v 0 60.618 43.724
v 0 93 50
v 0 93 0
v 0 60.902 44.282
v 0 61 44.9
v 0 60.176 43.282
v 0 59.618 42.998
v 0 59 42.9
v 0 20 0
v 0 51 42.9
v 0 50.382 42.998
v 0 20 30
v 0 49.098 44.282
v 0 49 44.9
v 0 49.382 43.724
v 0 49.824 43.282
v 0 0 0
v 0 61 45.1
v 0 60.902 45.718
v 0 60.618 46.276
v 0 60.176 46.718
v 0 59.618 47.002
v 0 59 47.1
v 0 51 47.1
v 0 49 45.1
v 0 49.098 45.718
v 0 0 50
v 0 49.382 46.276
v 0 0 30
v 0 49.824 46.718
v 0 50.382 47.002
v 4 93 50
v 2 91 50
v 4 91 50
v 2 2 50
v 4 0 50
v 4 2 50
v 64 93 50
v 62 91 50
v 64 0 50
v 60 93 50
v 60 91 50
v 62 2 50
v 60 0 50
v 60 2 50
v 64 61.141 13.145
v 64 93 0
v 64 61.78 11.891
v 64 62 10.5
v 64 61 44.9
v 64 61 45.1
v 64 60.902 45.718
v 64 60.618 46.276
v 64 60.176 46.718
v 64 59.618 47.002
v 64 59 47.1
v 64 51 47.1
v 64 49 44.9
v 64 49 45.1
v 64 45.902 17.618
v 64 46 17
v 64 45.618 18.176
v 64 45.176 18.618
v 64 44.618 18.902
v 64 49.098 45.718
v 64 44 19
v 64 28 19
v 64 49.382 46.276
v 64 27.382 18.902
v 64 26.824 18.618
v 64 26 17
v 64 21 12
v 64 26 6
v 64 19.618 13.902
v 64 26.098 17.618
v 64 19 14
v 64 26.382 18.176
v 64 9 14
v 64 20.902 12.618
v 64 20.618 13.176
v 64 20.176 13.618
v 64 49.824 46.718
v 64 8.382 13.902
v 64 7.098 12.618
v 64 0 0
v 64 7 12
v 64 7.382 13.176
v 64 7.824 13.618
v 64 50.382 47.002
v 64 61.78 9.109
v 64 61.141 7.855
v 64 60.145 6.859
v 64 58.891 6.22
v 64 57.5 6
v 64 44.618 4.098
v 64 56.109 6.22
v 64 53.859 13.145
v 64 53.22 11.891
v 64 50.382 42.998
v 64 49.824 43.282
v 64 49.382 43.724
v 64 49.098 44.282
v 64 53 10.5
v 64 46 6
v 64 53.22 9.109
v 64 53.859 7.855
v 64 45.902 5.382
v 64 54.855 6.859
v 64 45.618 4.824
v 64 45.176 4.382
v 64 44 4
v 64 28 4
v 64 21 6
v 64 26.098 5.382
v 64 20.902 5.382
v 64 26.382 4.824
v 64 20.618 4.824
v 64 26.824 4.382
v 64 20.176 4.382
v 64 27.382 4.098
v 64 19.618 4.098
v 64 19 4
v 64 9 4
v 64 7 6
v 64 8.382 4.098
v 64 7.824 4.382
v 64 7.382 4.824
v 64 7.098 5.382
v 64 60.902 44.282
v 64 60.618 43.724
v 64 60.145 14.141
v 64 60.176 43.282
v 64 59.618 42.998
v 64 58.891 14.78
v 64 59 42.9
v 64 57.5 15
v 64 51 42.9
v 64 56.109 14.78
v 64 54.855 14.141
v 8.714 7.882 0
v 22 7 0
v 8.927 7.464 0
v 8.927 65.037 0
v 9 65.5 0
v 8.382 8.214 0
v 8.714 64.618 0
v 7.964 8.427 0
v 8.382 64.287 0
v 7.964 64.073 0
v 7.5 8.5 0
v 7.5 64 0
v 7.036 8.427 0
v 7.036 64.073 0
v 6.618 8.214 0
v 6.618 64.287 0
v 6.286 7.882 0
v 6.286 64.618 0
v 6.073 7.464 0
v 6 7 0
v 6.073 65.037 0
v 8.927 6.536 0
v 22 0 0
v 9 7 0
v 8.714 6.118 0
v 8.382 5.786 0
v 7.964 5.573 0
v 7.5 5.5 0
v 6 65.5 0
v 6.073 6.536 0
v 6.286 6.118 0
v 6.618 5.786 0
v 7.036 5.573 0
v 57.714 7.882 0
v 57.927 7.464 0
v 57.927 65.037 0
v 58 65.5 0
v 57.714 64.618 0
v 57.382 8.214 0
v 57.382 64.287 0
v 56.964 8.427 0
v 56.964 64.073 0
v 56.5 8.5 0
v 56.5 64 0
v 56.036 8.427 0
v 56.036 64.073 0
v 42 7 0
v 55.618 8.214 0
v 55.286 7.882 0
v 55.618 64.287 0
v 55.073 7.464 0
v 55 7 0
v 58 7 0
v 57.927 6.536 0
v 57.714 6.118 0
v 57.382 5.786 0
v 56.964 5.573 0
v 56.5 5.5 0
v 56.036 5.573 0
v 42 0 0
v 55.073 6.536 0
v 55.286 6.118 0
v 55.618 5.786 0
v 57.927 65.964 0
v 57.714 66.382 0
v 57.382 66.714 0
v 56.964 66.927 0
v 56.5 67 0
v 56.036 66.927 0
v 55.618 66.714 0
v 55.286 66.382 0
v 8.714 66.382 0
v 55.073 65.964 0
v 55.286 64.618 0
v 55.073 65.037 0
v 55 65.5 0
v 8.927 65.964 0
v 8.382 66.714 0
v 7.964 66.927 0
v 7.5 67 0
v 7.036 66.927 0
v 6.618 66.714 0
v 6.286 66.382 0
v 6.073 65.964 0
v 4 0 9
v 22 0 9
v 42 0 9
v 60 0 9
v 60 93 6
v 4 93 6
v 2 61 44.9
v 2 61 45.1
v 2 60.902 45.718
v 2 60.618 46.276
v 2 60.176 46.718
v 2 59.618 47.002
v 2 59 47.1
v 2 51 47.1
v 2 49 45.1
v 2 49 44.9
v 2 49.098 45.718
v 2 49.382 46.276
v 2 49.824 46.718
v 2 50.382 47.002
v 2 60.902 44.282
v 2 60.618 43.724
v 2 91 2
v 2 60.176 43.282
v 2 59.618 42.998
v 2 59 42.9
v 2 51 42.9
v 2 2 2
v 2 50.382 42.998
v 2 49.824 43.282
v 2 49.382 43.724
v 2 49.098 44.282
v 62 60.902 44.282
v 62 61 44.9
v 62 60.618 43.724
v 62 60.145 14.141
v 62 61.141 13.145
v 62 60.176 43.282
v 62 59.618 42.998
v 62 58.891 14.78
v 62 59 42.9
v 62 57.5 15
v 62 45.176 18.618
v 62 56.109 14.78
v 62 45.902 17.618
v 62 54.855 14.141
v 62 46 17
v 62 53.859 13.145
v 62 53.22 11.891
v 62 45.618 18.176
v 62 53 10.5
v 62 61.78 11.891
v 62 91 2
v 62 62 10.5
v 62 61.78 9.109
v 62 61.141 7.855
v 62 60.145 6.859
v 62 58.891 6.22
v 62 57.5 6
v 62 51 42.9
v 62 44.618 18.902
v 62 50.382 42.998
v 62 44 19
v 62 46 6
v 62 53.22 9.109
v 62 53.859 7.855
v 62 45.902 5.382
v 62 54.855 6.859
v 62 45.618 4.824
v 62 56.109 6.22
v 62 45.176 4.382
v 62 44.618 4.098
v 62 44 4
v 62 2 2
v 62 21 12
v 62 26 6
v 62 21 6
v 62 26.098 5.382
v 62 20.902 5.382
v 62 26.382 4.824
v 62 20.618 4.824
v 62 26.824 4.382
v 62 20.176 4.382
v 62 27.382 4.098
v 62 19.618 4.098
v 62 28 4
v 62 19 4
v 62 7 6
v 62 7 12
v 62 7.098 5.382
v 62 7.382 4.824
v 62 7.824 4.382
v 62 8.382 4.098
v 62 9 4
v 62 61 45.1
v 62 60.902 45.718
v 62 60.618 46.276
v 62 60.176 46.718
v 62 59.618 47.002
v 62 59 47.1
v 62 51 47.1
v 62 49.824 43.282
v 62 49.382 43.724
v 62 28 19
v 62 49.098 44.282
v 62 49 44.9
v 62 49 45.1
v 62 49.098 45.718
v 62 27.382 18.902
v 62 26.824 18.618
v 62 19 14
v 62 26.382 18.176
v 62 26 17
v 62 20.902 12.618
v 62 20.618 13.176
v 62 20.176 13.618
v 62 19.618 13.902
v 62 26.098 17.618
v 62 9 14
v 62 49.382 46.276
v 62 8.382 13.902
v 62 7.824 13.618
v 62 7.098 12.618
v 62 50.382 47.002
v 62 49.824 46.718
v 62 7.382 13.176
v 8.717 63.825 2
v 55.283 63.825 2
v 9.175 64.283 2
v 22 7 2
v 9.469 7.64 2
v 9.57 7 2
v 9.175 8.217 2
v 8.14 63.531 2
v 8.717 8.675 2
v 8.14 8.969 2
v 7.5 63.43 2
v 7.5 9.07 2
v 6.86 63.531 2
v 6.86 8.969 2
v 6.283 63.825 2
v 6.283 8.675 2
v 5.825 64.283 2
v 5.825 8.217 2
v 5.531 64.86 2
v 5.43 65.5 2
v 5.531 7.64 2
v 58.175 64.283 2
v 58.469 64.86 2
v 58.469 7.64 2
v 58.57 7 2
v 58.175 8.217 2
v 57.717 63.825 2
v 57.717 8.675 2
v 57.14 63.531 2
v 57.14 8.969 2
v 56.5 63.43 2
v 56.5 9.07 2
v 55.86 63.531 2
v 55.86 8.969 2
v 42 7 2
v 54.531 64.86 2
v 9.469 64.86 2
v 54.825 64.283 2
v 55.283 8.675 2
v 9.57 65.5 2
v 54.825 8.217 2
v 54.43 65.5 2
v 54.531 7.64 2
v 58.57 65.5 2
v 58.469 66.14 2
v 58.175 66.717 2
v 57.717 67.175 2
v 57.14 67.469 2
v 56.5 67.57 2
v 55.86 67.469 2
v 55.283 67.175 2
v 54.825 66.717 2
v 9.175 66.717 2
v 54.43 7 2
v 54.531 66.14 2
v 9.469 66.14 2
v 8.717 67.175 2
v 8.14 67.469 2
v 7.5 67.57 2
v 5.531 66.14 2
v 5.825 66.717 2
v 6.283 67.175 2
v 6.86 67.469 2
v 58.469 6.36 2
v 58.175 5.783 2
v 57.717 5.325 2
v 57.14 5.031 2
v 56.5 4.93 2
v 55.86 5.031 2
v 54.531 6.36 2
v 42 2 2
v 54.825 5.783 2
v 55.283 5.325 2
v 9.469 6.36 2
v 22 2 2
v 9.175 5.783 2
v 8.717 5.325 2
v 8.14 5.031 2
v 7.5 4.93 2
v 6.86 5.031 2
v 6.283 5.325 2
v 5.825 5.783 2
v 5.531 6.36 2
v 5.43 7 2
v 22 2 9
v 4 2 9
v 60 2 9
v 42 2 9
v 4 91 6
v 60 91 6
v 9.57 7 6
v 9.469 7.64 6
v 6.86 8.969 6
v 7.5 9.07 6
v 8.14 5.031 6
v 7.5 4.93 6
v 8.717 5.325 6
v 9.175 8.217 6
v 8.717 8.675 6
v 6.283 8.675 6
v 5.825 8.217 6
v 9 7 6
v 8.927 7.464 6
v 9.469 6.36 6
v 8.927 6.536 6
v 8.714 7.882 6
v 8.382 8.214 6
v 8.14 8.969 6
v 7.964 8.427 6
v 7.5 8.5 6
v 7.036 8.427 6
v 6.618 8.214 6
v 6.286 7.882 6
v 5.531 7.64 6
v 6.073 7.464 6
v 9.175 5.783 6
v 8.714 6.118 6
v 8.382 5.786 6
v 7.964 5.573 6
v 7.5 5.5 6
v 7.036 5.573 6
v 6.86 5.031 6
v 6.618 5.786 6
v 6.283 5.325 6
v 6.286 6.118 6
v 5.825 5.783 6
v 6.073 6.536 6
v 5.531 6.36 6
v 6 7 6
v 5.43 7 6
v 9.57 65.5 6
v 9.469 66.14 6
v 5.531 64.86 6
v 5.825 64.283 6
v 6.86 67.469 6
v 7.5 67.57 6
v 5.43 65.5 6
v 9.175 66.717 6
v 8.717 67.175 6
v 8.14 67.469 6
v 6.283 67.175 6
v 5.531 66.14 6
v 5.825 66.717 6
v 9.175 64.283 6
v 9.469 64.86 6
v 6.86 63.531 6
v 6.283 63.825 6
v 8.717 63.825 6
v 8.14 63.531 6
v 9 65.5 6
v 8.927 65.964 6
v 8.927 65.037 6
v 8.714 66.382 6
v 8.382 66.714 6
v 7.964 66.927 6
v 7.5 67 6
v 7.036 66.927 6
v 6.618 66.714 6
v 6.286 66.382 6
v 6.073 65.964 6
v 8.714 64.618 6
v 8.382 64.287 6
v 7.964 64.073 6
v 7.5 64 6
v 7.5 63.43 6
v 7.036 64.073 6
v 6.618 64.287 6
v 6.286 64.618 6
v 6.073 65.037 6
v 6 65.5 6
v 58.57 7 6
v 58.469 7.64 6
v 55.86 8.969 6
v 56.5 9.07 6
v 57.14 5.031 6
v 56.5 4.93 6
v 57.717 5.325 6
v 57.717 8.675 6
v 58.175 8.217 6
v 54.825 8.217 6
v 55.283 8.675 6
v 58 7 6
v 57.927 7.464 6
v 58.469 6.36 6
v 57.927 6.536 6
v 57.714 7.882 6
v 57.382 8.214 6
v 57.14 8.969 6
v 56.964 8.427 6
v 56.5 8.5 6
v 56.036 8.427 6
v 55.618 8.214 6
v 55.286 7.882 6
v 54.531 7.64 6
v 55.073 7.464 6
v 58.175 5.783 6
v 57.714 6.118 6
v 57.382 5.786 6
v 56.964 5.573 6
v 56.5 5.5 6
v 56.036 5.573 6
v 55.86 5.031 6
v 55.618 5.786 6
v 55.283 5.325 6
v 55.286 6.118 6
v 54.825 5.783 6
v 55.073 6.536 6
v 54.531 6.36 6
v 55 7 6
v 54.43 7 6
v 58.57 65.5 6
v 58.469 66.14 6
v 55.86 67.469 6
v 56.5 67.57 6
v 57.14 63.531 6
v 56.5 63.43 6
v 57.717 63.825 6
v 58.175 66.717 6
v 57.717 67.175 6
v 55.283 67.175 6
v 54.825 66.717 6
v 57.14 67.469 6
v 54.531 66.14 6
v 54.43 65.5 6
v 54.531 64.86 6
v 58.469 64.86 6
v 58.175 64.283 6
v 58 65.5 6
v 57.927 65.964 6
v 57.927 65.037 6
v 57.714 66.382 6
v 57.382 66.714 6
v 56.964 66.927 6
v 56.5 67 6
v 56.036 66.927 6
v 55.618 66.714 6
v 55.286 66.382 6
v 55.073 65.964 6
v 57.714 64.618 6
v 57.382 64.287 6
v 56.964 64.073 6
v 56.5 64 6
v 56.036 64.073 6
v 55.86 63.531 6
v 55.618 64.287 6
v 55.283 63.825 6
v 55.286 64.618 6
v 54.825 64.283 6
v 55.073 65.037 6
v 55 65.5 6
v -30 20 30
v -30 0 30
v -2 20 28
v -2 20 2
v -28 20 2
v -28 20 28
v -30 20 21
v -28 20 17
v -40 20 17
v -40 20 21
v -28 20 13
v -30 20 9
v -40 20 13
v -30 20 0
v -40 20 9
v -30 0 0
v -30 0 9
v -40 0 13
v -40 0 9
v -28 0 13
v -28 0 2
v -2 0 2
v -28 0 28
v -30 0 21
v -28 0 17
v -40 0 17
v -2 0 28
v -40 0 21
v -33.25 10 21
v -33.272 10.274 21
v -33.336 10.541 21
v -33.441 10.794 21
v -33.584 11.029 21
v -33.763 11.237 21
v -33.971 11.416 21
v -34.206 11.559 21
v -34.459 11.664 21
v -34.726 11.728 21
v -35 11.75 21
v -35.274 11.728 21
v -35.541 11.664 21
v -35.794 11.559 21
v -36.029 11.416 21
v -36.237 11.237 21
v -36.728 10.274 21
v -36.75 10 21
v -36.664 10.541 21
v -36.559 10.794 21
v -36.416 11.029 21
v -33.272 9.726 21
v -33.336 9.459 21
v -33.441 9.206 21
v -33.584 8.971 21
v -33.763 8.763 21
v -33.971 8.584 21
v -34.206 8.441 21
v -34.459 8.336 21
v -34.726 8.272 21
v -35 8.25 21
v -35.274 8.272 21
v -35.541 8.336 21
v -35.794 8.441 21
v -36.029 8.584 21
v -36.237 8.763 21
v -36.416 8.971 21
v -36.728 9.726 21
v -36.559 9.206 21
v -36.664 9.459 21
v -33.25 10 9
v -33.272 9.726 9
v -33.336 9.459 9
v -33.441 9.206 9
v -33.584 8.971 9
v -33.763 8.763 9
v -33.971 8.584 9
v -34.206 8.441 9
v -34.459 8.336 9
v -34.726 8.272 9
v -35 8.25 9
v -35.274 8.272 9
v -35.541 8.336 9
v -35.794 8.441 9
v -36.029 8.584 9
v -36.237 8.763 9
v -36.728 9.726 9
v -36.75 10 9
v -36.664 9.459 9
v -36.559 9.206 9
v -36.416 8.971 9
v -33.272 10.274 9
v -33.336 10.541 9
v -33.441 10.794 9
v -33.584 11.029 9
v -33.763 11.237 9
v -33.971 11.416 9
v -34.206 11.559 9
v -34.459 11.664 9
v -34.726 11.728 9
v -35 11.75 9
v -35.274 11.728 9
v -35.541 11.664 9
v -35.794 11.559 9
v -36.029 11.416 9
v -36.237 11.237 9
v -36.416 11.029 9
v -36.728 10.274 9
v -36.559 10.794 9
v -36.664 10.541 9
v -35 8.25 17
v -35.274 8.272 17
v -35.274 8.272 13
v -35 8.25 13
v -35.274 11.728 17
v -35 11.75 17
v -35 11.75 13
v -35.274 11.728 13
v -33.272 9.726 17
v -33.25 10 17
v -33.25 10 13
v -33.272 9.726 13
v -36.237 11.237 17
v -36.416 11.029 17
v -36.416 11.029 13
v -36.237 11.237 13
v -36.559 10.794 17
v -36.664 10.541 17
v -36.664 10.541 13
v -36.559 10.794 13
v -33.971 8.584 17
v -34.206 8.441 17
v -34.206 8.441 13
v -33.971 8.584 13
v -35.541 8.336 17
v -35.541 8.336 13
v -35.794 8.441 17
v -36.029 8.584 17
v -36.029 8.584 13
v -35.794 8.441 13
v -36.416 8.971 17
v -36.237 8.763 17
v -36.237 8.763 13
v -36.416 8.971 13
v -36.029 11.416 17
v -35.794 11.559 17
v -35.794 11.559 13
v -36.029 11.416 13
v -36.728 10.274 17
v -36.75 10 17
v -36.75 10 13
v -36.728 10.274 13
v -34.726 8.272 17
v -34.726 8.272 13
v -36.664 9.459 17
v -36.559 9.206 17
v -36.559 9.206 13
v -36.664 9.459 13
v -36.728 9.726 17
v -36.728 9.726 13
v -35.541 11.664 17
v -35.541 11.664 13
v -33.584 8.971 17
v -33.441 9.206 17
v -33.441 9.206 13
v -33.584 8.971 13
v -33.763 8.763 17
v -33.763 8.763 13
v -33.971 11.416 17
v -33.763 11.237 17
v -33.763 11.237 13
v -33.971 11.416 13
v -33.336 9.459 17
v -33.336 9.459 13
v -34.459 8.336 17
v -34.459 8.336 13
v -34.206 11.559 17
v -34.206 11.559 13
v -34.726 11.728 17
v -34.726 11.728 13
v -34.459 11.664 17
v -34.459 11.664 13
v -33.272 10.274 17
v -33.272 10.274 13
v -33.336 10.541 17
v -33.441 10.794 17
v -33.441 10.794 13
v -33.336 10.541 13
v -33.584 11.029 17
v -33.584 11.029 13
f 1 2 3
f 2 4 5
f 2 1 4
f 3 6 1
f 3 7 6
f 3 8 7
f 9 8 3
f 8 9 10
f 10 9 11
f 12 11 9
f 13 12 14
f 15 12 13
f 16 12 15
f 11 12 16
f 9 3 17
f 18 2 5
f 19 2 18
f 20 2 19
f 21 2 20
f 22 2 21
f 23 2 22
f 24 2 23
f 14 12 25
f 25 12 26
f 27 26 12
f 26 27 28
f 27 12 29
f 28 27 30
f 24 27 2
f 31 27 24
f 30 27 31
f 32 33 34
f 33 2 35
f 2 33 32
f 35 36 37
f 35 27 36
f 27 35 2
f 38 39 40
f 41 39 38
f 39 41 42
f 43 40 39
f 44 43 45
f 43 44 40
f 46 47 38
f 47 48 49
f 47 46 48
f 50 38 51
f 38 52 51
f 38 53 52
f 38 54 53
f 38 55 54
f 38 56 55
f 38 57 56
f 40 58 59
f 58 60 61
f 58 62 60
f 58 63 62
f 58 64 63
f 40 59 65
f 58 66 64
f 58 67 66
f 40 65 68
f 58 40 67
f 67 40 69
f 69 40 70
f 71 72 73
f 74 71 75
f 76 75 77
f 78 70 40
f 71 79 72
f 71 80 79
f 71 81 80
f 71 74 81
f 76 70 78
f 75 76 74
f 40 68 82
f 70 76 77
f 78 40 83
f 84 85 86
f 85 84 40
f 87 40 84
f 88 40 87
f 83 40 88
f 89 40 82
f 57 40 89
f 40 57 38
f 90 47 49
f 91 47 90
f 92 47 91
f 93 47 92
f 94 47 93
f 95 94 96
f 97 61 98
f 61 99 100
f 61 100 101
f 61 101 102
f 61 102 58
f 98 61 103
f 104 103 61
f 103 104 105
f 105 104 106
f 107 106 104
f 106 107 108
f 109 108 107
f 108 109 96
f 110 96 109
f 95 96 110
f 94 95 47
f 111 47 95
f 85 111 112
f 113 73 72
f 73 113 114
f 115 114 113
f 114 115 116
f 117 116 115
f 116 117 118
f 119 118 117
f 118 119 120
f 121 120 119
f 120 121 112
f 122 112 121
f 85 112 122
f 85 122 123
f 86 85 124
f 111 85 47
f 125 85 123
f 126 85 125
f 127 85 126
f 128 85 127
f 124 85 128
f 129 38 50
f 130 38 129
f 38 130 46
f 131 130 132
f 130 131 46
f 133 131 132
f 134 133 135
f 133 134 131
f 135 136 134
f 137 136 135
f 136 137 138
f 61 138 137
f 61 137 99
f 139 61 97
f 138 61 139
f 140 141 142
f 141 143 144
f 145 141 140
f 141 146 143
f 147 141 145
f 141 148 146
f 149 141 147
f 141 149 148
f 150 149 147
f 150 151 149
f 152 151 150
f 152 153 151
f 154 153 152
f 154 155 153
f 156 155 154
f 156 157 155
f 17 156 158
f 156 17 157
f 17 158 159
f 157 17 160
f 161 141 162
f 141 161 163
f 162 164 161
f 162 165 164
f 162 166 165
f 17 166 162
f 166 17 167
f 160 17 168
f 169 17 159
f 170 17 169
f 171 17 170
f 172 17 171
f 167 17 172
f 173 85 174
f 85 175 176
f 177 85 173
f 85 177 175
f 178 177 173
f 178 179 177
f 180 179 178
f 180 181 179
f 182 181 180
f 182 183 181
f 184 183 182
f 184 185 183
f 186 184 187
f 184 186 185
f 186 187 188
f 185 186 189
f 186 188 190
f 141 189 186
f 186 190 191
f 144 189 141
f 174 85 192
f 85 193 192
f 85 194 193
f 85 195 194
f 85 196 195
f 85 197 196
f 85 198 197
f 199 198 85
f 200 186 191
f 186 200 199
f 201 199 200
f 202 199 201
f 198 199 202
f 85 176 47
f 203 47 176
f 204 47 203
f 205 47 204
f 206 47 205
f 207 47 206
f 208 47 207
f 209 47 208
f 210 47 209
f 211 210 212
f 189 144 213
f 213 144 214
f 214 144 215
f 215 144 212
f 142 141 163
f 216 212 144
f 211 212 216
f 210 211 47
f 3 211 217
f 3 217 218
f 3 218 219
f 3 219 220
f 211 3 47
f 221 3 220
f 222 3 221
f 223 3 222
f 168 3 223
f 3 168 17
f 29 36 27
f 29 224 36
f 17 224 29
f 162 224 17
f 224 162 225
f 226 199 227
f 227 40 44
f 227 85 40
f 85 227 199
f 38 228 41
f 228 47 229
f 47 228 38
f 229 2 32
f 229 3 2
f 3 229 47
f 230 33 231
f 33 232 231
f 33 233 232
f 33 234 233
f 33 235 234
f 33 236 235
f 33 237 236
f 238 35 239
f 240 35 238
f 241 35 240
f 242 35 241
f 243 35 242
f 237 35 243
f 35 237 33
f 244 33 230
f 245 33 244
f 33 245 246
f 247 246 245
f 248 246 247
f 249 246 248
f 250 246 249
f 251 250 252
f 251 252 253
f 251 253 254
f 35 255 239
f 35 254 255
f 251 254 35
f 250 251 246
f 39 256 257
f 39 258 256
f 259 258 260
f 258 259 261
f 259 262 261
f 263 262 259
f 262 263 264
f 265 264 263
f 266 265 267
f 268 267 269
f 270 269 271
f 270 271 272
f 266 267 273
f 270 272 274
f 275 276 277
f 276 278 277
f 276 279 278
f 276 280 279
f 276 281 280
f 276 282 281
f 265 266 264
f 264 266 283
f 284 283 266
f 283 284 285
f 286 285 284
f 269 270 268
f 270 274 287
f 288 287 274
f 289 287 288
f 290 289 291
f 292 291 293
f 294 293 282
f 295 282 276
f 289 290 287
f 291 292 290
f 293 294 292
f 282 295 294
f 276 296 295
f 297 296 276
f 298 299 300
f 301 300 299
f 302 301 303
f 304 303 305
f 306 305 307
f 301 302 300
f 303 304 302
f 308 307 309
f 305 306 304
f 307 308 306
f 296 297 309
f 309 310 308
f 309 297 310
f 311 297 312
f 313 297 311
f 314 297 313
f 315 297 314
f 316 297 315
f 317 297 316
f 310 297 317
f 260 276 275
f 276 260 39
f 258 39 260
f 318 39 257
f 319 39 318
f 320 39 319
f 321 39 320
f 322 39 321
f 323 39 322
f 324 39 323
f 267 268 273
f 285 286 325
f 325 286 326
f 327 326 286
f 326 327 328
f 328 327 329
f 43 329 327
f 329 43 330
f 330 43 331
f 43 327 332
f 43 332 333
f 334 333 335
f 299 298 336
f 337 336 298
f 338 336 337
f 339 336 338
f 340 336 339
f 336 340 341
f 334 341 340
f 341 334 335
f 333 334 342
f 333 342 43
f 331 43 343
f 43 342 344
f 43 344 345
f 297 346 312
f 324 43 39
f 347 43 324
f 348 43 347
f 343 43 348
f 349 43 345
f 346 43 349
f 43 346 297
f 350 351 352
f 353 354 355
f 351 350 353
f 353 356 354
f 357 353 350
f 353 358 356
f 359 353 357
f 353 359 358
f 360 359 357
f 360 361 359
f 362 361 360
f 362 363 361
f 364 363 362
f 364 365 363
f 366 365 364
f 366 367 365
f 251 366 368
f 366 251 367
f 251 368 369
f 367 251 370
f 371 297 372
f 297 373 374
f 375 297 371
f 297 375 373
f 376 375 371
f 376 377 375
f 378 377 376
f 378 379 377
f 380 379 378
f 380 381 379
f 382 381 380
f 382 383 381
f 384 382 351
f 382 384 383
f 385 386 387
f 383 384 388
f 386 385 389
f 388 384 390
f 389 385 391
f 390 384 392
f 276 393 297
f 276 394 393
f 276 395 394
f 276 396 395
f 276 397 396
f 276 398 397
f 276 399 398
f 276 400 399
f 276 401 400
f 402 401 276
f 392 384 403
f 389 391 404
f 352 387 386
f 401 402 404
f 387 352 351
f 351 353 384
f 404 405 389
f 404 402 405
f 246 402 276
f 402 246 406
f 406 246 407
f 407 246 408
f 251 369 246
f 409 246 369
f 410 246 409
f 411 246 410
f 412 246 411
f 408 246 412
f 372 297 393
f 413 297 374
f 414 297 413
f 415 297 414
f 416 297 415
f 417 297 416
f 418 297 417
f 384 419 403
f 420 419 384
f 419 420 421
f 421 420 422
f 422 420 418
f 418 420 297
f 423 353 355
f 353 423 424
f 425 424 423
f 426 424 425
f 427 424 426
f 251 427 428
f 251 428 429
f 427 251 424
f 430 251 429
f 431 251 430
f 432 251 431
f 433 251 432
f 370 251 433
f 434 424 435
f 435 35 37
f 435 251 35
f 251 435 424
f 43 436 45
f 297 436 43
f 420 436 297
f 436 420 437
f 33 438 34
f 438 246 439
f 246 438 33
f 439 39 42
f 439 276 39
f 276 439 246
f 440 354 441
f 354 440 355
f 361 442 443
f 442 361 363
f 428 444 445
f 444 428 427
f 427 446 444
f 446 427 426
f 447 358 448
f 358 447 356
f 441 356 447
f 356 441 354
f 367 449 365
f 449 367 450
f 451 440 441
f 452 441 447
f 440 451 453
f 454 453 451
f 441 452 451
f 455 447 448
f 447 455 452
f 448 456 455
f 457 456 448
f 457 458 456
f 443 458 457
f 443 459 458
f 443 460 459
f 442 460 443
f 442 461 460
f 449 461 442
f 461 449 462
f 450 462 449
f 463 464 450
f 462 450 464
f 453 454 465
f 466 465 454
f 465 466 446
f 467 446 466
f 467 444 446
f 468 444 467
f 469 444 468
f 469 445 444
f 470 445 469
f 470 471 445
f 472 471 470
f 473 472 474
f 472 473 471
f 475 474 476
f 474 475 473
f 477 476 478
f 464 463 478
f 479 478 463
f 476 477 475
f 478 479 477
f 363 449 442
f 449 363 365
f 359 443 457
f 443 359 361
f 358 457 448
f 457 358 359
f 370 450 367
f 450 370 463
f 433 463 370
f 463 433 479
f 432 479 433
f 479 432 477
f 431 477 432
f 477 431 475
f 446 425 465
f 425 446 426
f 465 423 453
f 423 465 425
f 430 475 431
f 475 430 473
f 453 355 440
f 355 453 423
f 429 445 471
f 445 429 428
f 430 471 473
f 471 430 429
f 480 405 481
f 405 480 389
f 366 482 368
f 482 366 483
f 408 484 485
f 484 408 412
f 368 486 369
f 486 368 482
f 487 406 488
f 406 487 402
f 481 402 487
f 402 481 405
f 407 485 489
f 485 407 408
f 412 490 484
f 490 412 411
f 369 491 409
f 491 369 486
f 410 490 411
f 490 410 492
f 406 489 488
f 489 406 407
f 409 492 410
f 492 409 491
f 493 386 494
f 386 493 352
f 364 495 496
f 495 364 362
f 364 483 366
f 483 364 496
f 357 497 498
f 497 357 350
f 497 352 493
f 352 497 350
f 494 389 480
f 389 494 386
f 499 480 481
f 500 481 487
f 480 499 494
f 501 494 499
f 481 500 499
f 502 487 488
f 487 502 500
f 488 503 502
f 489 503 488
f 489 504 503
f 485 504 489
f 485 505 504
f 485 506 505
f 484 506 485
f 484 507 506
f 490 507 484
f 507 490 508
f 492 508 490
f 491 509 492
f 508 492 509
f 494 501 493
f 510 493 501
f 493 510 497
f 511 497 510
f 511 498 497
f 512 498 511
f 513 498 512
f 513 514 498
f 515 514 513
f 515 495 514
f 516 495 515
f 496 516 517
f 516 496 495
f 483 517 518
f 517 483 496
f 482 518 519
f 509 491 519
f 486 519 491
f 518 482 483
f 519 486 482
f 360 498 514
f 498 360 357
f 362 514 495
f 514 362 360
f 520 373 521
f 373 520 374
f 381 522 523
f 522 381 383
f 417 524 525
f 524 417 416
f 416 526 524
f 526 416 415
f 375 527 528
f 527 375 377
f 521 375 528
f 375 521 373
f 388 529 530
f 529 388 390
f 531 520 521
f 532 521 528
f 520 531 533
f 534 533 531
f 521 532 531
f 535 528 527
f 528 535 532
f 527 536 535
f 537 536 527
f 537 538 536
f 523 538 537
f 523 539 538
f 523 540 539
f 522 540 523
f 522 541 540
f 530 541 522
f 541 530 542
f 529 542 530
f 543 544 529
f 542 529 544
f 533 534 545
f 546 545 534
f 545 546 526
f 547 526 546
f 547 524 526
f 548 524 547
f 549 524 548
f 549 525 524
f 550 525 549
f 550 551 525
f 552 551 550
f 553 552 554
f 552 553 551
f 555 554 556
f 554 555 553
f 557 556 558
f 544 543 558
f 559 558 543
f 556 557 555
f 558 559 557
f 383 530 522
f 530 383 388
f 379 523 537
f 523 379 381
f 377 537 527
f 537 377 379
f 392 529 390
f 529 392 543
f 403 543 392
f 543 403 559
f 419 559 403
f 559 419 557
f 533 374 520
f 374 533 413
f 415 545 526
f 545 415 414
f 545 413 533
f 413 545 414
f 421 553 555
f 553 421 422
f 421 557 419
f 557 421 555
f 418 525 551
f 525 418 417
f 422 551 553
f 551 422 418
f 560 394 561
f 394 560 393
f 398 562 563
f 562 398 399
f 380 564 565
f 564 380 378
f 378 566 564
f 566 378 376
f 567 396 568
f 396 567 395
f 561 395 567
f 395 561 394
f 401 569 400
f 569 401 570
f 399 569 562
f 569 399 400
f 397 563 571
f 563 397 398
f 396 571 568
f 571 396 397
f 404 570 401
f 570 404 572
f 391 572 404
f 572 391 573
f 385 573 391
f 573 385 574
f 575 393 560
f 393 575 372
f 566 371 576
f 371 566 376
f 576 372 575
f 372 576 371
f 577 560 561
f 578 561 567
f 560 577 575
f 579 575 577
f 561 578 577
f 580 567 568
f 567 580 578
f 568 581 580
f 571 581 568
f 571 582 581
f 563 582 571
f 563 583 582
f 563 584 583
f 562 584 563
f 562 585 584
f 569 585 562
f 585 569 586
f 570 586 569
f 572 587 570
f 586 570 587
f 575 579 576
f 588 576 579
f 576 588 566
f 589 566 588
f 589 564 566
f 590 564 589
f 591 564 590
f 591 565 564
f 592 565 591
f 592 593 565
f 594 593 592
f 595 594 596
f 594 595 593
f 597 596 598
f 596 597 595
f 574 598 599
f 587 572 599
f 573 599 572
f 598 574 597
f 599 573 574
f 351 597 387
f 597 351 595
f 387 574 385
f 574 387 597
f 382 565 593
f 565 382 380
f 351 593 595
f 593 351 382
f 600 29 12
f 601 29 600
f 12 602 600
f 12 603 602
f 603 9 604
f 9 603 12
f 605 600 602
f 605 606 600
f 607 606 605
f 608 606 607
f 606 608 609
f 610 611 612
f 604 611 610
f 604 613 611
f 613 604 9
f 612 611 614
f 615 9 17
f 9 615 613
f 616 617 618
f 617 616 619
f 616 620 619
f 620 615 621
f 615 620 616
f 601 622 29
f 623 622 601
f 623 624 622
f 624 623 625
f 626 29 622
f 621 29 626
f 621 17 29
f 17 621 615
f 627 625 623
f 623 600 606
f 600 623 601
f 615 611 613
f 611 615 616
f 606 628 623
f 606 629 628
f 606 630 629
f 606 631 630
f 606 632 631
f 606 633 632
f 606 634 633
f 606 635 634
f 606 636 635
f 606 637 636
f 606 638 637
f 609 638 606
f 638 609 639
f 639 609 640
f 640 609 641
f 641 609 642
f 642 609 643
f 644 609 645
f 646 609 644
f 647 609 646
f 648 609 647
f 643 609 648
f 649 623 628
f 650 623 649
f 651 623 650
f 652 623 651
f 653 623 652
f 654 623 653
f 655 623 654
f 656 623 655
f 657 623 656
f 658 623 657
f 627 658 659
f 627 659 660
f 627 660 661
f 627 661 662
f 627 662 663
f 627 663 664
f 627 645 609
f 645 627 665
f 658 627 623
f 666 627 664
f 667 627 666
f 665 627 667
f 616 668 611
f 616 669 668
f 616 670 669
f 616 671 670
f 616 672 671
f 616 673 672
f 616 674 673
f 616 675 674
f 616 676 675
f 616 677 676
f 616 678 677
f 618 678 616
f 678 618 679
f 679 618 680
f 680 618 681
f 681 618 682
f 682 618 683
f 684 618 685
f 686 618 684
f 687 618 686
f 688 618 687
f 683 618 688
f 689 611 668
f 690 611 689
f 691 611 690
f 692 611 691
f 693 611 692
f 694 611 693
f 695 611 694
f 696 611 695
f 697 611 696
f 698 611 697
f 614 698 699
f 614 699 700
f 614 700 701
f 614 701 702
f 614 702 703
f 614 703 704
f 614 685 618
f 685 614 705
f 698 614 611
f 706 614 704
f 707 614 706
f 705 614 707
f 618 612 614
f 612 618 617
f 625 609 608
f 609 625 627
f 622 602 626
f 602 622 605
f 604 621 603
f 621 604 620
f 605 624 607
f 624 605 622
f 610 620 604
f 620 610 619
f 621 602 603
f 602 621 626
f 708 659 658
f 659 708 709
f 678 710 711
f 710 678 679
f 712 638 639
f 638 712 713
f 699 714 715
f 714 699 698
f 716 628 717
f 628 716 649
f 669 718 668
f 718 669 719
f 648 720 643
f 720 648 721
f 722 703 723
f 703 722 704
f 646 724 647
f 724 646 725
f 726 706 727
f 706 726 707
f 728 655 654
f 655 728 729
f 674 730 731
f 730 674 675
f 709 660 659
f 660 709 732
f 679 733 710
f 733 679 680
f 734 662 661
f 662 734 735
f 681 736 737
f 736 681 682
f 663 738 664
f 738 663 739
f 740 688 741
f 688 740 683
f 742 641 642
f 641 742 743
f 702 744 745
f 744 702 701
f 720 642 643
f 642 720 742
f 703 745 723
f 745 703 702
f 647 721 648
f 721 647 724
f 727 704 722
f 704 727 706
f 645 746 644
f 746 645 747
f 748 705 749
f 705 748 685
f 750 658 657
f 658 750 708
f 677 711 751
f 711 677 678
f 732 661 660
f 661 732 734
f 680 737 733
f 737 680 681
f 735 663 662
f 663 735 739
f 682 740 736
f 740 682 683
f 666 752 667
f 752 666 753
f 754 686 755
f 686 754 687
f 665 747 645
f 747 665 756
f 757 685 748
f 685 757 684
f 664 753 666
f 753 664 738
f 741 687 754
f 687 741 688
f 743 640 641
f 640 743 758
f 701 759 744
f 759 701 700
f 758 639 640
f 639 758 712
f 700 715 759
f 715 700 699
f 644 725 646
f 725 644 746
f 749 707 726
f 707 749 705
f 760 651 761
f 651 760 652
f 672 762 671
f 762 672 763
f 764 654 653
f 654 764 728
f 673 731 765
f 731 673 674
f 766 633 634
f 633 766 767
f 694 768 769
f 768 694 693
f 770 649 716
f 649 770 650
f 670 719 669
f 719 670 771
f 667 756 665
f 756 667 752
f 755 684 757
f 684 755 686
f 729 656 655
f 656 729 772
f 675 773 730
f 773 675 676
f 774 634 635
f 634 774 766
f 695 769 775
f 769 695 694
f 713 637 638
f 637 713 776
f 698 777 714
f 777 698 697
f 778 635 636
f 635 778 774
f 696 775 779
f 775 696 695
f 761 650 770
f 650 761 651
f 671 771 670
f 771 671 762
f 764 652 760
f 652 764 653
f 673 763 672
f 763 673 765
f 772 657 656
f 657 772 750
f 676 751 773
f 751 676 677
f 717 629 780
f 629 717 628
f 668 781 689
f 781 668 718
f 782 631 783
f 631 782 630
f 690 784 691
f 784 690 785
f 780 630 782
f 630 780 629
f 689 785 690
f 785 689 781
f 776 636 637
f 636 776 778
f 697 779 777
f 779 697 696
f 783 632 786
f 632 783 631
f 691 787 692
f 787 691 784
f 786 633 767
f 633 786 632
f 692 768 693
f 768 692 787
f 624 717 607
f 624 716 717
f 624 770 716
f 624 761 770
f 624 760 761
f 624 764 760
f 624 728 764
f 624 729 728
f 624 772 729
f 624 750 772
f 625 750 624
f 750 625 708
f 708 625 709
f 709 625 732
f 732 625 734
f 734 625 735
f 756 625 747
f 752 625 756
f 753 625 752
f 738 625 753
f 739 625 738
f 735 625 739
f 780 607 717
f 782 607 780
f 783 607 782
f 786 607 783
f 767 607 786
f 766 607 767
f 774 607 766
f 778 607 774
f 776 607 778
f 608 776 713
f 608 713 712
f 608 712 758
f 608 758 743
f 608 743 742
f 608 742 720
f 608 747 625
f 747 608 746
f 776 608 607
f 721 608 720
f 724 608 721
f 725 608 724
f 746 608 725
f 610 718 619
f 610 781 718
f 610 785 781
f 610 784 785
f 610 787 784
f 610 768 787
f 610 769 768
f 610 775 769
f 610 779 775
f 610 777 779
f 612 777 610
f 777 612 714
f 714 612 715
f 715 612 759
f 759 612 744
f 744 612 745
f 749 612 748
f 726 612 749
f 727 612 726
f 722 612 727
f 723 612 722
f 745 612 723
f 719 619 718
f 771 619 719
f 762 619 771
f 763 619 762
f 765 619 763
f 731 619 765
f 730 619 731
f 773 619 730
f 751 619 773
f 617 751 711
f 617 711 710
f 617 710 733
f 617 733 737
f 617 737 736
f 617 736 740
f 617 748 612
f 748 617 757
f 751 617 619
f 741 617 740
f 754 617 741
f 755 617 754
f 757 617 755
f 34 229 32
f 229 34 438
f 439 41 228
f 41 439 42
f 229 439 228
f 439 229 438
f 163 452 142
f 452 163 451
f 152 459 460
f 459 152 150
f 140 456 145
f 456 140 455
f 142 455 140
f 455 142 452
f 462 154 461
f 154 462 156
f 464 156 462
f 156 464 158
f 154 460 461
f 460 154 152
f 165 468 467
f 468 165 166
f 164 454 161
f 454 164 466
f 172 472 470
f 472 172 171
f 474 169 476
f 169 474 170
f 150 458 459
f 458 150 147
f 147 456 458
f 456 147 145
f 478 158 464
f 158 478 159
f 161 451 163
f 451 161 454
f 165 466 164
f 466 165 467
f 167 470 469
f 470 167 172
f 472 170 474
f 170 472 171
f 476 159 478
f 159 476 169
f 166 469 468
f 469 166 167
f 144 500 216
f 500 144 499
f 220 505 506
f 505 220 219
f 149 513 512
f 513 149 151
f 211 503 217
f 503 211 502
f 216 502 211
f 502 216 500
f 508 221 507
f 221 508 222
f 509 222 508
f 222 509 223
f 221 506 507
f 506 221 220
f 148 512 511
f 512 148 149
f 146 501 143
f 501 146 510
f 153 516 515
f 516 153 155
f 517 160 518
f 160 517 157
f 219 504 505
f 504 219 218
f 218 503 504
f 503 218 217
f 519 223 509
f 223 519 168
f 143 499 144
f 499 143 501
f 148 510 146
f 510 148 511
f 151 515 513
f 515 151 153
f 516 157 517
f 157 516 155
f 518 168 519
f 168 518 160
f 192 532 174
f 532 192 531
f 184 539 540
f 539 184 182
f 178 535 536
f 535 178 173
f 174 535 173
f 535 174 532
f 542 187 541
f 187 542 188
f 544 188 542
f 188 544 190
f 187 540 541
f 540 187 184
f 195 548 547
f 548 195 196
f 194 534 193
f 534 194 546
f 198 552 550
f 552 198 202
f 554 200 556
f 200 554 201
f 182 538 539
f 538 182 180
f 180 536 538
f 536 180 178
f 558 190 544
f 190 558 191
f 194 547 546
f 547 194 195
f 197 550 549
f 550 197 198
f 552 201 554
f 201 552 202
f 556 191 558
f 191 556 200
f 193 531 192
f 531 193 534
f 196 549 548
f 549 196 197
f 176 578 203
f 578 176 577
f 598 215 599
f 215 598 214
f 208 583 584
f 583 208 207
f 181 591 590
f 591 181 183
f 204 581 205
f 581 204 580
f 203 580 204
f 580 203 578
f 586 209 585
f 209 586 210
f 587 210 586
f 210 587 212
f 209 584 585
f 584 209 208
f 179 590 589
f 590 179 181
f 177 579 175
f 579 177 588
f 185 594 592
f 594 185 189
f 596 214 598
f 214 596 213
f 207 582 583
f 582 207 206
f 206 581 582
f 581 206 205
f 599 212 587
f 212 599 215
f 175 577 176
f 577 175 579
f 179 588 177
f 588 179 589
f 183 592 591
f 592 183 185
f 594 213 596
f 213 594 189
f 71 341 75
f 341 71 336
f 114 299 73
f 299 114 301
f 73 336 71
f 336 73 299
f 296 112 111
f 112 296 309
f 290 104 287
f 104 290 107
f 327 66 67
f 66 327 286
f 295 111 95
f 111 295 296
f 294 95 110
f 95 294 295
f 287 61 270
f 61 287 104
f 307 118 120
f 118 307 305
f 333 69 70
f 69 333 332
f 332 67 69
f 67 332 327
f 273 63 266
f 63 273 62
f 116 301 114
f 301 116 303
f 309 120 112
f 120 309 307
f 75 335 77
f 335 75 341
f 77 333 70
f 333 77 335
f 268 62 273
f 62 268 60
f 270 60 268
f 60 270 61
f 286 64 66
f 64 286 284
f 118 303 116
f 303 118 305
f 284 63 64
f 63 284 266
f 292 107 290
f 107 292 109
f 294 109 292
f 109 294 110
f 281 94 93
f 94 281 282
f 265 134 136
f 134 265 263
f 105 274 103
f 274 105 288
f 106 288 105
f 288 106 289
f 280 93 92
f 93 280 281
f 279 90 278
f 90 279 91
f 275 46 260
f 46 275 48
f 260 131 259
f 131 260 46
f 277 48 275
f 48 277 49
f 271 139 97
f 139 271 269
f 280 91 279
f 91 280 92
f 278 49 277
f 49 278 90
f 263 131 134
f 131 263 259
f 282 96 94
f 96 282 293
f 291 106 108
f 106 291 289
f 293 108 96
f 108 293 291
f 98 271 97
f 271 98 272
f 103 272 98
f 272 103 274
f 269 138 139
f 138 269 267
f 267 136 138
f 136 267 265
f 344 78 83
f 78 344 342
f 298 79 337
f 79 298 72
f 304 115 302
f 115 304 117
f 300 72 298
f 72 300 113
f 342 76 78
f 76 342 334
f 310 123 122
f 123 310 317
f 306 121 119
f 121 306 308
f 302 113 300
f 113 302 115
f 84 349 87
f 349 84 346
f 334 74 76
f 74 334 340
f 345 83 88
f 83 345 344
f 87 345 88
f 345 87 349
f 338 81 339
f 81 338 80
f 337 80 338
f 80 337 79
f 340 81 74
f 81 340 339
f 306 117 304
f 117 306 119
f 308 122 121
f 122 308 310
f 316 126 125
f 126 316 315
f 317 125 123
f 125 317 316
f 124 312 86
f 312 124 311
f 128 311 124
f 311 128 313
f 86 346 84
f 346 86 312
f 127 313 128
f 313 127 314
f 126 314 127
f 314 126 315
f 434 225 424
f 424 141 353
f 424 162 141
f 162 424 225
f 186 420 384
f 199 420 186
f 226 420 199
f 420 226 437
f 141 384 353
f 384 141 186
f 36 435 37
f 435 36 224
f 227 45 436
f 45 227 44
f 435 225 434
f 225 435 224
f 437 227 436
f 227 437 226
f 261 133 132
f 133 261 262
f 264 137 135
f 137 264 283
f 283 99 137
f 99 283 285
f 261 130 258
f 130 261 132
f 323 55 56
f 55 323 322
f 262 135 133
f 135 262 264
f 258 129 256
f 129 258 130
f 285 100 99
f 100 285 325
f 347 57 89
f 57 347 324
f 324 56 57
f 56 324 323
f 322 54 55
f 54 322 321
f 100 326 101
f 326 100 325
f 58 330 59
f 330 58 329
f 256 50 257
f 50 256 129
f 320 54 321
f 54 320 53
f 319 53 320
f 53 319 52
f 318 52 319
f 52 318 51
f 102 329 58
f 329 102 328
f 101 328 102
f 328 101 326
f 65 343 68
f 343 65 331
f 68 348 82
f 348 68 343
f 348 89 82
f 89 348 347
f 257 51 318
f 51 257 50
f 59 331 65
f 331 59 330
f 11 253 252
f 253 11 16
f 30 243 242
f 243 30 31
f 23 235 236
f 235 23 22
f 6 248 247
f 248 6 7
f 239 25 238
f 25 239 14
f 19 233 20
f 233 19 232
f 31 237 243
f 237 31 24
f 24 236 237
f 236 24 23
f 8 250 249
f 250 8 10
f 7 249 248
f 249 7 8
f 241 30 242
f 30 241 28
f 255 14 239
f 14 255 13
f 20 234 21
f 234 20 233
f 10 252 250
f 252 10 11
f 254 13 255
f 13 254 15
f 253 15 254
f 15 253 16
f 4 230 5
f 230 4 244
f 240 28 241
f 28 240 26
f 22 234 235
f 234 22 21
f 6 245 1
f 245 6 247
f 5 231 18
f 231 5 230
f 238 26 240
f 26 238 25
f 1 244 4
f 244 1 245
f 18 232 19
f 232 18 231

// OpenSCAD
// Pi Camera Mount Core
// by Ming-Dao Chia
// (for adding to RPi Case)
// Last update: 17/2/2017
// for the Borevitz Lab, Australian National University

// Mount settings
screw_correction=.5;
base_screw_size=3;
screws=base_screw_size+screw_correction;
screw_res=40;

rounding = 2; // just for the cable tie slots (less = sharper corners)

// Goes around the aluminum bar.
module frame(length, thickness){
    sides=thickness*2;
    rod_size=26;
    difference(){
        union(){
            cube([rod_size+sides,rod_size+sides,length]);
            translate([(rod_size+sides)/2-sides*1.5,rod_size+sides,0])
            cube([sides*3, 10,length]);
        }
        translate([thickness,thickness,-1])
        cube([rod_size,rod_size,length+2]);
        // top screw
        translate([0,rod_size+sides+5,length/2])
        rotate([0,90,0])
        cylinder(25,screws/2,screws/2,$fn=screw_res);
        // spacer for top screw
        translate([(rod_size+sides)/2-sides/2,rod_size,-1])
        cube([sides,rod_size,length+2]);
        
    }
}

// rounded rectangle module
slot_width=12; // how wide slots are

module sidePort(x,y, rounding=rounding){
    rotate([0,90,0])
    minkowski()
    {
      cube([y-rounding*2,x-rounding*2,1],center=true);
      cylinder(r=rounding,h=5, $fn=circle_res);
    }
}

// attaches to arm
module joint_screw(hole_size){
    triangle_size=10;
    difference(){
        cylinder(16,triangle_size,triangle_size,$fn=3);
        translate([1.5,0,-0.5])
        cylinder(25,hole_size/2,hole_size/2,$fn=screw_res);
        translate([0,0,3])
        cylinder(10,triangle_size*2,triangle_size*2, $fn=3);
        translate([6,-3,-1])
        cube([10,10,20]);
    }
}


// RPI case Settings
circle_res = 20; // increase when printing
case_height = 50;
rounding=2; // for square ports

// Constants
fudge=0.2; // just for the tongue
RPi_space_height = 4;
RPi_screws = 2.5;
RPi_screw_hole_thickness=0.41;

// configurable hole for screws
module screwHole(diameter, x, y){ 
    translate([x,y,-2])
    cylinder(d=diameter, h=10, $fn=circle_res);
}

module spacer(x,y){
    translate([x,y,2])
            cylinder(r=(RPi_screws/2)+(RPi_screw_hole_thickness*2),h=RPi_space_height, $fn=circle_res);
}

module sidePort(x,y, rounding=rounding){
    rotate([0,90,0])
    minkowski()
    {
      cube([y-rounding*2,x-rounding*2,1],center=true);
      cylinder(r=rounding,h=5, $fn=circle_res);
    }
}

module RPi_core(){
    difference(){
        union(){
            difference(){
                cube([64,93,case_height]);
                // space for the RPi itself
                translate([2,2,2])
                cube([60,89,case_height]);
            }
             // bottom mounting spacers
            spacer(7.5, 7);
            spacer(7.5, 65.5);
            spacer(56.5, 7);
            spacer(56.5, 65.5);
        }
        // USB/Ethernet port access
        translate([4,90,6])
        cube([56,5,case_height]);
        // Bottom mounting screws
        // rods to connect to case bottom
        screwHole(3, 7.5, 7);
        screwHole(3, 7.5, 65.5);
        screwHole(3, 56.5, 7);
        screwHole(3, 56.5, 65.5);
        // HDMI slot
        translate([60,36,11.5])
        sidePort(20,15);
        // Power cable
        translate([60,57.5,10.5])
        sidePort(7,7,4.5);
        // side USB
        translate([60,14,9])
        sidePort(14,10);
        // microSD slot
        translate([22,-1,-0.99])
        cube([20,8,10]);
        // rear camera ribbons slot
        translate([4,-1,9])
        cube([56,5,case_height]);
        // cable tie slots
        translate([60,55,case_height-5])
        sidePort(slot_width,4.2);
        translate([-1,55,case_height-5])
        sidePort(slot_width,4.2);
    }
}


module RPi_bottom(){
    union(){
        RPi_core();
        rotate([0,90,90])
        translate([-30,0,0])
        frame(20,2);
    }
}

RPi_bottom();
// import cover for debugging
// #translate([64,0,case_height+6]) rotate([0,180,0]) import("R3SC_RPi_top.stl");
